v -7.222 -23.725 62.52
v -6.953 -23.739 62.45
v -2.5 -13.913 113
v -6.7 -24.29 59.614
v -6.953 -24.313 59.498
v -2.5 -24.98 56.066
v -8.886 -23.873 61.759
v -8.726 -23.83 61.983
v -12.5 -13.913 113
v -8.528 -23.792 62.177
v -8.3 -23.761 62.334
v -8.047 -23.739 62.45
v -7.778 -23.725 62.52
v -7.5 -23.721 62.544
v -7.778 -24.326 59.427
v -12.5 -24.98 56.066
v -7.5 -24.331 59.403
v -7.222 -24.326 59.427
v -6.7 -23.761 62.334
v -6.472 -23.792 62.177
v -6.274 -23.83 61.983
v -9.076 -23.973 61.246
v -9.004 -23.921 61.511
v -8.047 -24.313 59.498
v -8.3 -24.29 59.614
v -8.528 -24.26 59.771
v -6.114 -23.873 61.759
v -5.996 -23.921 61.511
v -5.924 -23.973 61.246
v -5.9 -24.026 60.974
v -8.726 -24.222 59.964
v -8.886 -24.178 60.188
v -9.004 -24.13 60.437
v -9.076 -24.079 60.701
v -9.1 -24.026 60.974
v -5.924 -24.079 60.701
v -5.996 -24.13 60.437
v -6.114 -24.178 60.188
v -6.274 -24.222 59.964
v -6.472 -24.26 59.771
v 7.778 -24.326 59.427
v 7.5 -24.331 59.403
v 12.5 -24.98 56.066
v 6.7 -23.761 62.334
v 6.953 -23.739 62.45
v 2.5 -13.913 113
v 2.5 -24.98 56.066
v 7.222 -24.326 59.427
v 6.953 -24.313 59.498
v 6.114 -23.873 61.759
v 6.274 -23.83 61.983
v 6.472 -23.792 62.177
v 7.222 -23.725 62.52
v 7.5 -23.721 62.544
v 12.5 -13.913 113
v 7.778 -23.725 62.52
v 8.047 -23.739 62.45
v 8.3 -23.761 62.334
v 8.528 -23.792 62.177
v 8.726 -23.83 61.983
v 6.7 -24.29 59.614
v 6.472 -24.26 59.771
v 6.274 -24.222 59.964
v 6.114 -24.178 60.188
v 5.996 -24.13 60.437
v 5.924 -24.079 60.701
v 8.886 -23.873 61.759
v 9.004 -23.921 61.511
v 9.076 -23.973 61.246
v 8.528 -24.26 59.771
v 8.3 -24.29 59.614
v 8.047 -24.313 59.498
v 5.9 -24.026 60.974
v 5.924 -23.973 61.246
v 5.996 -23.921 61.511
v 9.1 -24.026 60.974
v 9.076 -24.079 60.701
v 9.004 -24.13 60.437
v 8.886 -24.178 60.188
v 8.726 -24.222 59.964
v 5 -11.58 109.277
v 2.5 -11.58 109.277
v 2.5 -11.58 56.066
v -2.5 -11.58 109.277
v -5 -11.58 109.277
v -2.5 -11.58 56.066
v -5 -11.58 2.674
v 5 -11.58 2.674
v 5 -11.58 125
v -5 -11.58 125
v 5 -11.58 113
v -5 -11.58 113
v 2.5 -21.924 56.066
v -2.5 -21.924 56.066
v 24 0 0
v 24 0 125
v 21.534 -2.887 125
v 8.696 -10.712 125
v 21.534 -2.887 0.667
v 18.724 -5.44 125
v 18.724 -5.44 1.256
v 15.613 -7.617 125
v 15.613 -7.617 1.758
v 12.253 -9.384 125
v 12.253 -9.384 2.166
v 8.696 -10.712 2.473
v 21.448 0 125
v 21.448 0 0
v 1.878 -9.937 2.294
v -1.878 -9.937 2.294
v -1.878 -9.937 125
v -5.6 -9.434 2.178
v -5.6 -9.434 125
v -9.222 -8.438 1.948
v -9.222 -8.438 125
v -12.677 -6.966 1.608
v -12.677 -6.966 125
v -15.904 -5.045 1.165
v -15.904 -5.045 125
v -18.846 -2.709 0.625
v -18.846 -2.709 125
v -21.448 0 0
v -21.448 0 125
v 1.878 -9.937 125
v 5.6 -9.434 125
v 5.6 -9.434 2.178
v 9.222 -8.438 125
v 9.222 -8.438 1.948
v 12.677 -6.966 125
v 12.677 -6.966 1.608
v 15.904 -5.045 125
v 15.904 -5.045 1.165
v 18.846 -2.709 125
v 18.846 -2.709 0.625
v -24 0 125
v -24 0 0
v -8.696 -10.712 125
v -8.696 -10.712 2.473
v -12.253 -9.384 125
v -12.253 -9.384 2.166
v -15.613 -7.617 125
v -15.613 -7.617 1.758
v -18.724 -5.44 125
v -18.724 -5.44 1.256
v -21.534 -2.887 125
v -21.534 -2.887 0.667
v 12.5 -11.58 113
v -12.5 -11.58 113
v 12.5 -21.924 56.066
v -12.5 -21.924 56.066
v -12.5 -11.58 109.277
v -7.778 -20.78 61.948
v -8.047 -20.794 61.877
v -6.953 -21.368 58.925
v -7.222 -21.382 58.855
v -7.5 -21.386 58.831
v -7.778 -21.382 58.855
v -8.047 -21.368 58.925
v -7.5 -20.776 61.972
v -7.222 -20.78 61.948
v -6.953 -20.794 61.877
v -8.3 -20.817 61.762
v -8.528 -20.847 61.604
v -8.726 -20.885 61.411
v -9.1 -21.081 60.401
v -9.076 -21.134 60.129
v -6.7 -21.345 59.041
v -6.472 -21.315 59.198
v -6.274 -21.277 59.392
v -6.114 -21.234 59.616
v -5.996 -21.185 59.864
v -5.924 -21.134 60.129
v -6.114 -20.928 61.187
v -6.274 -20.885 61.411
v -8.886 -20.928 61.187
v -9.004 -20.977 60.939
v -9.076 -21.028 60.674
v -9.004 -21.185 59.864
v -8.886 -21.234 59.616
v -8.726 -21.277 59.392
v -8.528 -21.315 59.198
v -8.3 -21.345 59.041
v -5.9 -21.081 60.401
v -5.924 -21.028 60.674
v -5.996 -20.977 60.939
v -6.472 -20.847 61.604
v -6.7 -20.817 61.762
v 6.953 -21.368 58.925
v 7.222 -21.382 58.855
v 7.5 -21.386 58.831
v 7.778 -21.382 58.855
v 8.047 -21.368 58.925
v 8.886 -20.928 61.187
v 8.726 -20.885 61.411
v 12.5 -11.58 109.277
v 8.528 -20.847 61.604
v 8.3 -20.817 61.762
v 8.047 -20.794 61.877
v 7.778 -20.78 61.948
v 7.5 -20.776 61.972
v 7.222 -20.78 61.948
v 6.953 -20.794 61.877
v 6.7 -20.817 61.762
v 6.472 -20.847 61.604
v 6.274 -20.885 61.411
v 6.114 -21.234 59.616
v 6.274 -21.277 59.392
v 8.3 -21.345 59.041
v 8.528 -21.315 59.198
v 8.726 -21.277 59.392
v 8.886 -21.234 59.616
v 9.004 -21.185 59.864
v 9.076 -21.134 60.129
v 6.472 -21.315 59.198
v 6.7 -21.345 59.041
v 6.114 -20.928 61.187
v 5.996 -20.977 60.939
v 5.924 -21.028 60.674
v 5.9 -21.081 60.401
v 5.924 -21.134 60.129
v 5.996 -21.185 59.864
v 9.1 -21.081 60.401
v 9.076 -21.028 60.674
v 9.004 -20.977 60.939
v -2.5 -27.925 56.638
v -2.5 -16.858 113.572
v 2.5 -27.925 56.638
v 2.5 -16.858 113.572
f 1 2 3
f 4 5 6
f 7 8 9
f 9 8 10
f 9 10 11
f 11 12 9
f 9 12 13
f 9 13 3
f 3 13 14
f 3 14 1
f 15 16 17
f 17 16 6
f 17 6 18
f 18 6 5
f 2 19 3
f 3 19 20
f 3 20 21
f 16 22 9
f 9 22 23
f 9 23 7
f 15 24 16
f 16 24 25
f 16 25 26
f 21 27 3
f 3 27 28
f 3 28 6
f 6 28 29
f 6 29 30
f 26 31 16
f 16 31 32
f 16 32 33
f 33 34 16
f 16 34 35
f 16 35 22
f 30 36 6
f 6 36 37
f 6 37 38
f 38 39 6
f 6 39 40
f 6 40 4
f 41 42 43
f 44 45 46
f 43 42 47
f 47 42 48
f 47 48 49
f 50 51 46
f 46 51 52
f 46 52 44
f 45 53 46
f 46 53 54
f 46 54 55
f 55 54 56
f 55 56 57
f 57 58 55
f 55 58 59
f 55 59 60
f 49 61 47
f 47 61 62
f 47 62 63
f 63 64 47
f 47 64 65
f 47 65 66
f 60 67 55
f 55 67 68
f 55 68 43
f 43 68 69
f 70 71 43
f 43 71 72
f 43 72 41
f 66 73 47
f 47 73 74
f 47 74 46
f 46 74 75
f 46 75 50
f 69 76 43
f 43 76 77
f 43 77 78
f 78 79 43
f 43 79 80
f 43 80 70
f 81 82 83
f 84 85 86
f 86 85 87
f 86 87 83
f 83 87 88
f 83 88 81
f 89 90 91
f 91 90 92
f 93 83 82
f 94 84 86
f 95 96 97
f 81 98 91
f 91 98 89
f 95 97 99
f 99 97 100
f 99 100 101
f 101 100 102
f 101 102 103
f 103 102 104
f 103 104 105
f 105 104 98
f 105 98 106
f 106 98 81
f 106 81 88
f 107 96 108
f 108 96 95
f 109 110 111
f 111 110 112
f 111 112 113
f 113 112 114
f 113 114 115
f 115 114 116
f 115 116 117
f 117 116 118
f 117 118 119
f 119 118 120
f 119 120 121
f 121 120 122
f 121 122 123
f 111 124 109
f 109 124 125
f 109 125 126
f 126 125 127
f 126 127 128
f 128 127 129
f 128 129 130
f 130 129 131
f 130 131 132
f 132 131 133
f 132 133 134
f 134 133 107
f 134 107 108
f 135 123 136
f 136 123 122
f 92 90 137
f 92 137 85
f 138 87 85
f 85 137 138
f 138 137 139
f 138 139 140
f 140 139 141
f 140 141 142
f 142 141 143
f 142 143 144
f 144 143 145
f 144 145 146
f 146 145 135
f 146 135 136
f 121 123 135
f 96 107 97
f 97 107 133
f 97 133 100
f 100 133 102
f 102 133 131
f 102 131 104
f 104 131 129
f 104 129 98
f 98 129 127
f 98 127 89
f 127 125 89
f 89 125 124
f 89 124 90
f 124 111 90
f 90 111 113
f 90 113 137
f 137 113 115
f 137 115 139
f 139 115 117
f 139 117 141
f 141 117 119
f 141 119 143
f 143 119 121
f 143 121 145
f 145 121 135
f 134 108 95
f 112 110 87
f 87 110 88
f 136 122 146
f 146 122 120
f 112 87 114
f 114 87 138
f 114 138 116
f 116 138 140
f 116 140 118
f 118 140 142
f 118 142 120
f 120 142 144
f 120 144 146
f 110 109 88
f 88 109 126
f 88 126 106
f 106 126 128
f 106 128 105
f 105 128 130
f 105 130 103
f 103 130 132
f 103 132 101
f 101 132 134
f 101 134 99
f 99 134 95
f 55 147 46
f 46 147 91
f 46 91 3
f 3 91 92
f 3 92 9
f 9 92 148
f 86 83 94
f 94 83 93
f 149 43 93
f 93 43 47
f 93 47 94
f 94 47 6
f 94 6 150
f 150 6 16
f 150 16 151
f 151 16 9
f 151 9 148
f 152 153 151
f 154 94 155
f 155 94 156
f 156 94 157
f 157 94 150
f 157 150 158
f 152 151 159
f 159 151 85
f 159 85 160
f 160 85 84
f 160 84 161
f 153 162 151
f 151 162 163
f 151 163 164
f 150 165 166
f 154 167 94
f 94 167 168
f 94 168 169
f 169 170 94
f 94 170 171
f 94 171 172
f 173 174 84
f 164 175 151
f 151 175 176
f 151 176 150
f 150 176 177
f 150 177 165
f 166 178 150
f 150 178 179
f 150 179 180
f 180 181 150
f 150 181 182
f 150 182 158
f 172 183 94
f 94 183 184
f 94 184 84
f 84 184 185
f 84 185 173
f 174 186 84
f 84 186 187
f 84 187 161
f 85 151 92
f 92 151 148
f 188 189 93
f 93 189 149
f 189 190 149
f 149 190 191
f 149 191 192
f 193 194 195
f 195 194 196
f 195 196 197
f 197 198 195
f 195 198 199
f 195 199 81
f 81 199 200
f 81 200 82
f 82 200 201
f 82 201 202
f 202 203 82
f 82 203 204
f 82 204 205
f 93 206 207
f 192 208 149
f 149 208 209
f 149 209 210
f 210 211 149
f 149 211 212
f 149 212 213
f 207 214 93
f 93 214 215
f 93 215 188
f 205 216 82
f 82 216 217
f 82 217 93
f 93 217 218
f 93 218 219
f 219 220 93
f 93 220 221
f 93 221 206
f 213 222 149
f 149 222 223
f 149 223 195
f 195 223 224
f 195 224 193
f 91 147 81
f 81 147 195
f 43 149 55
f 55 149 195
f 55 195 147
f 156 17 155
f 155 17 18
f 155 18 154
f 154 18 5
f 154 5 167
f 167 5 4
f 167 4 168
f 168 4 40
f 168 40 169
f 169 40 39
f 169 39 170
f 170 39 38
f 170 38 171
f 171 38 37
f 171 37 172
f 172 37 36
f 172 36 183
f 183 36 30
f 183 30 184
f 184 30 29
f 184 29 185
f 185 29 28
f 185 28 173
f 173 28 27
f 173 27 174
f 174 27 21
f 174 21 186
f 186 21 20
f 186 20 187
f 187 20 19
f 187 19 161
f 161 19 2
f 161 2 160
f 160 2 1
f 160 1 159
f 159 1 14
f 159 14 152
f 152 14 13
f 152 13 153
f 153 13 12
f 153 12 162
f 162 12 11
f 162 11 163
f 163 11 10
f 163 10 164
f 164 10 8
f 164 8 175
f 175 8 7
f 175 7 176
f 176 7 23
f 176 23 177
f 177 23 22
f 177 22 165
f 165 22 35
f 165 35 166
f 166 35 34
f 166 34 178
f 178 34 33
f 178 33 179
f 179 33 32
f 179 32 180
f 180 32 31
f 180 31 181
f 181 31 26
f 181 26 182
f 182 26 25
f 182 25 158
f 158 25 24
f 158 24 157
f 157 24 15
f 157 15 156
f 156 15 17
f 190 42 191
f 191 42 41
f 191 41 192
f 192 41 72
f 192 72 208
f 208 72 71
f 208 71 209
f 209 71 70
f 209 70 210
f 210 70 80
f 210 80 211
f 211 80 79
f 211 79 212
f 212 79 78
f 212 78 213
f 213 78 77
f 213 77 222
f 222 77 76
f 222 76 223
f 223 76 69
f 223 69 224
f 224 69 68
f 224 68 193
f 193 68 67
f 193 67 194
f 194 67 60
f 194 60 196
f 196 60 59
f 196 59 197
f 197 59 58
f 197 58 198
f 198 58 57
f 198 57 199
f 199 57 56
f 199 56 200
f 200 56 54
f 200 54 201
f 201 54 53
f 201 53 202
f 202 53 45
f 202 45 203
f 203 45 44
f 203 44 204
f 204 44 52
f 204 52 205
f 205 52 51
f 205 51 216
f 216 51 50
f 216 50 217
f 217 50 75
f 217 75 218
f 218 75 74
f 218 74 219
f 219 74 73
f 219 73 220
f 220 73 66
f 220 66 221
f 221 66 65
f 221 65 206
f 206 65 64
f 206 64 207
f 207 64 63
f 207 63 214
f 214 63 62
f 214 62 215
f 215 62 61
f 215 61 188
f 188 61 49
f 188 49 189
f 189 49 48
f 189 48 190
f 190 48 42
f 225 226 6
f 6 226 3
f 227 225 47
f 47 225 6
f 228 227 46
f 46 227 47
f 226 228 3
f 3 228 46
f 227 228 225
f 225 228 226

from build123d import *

# Parameters (mm, degrees)
MAIN_DEPTH           = 125
SKETCH2_R            = 25
BEHINDCUT_DEPTH      = 128.808863695
CENTRALSUPPORT_DEPTH = 2.5
SIDESUPPORT_DEPTH    = 12.5
HOLEFIX_REACH        = 127.544
SKETCH6_R            = 1.6
SKETCH9_W            = 5
SKETCH9_H            = 58
BOSS_EXTRUDE4_DEPTH  = 3


with BuildPart() as part:
    # Sketch1 → Main (new body)
    with BuildSketch(Plane.XY):
        with BuildLine():
            Line((-24, 0), (-21.44761059, 0))
            ThreePointArc((-21.44761059, 0), (0, -10), (21.44761059, 0))
            Line((21.44761059, 0), (24, 0))
            ThreePointArc((24, 0), (15.613340762, -7.616861444), (5, -11.580398915))
            Line((5, -11.580398915), (-5, -11.580398915))
            ThreePointArc((-5, -11.580398915), (-15.613340762, -7.616861444), (-24, 0))
        make_face()
    extrude(amount=MAIN_DEPTH)

    # Sketch2 → BehindCut (cut, through all)
    with BuildSketch(Plane(origin=(0, 0, 0), x_dir=(1, 0, 0), z_dir=(0, 0.2249510543438655, 0.9743700647852351))):
        Circle(SKETCH2_R)
    extrude(amount=-BEHINDCUT_DEPTH, mode=Mode.SUBTRACT)

    # Sketch4 → CentralSupport (add, symmetric)
    with BuildSketch(Plane(origin=(0, 0, 0), x_dir=(0, 0, -1), z_dir=(1, 0, 0))):
        Polygon((-113, -11.580398915), (-56.06562336, -11.580398915), (-56.06562336, -24.979884357), (-113, -13.912962625), align=None)
    extrude(amount=CENTRALSUPPORT_DEPTH, both=True)

    # Sketch5 → SideSupport (add, symmetric)
    with BuildSketch(Plane(origin=(0, 0, 0), x_dir=(0, 0, -1), z_dir=(1, 0, 0))):
        Polygon((-56.06562336, -24.979884357), (-113, -13.912962625), (-113, -11.580398915), (-109.277470807, -11.580398915), (-56.06562336, -21.923734272), align=None)
    extrude(amount=SIDESUPPORT_DEPTH, both=True)

    # Sketch6 → HoleFix (cut, up to next)
    with BuildSketch(Plane(origin=(0, -34.571690998, 6.720055984), x_dir=(-1, 0, 0), z_dir=(0, -0.9816271834476653, 0.19080899537653823)), mode=Mode.PRIVATE) as holefix_sk1:
        with Locations((7.5, -55.269153308)):
            Circle(SKETCH6_R)
    holefix_tool1 = extrude(holefix_sk1.sketch, amount=-HOLEFIX_REACH, mode=Mode.PRIVATE) & part.part
    # Sketch6 → HoleFix (cut, up to next)
    with BuildSketch(Plane(origin=(0, -34.571690998, 6.720055984), x_dir=(-1, 0, 0), z_dir=(0, -0.9816271834476653, 0.19080899537653823)), mode=Mode.PRIVATE) as holefix_sk2:
        with Locations((-7.5, -55.269153308)):
            Circle(SKETCH6_R)
    holefix_tool2 = extrude(holefix_sk2.sketch, amount=-HOLEFIX_REACH, mode=Mode.PRIVATE) & part.part
    add(holefix_tool1.solids().sort_by_distance((-7.5, -24.025839, 60.973759))[0], mode=Mode.SUBTRACT)
    add(holefix_tool2.solids().sort_by_distance((7.5, -24.025839, 60.973759))[0], mode=Mode.SUBTRACT)

    # Sketch9 → Boss-Extrude4 (add)
    with BuildSketch(Plane(origin=(0, -34.571690998, 6.720055984), x_dir=(-1, 0, 0), z_dir=(0, -0.9816271834476653, 0.19080899537653823))):
        with Locations((0, -79.269153308)):
            Rectangle(SKETCH9_W, SKETCH9_H)
    extrude(amount=BOSS_EXTRUDE4_DEPTH)


solid = part.part
